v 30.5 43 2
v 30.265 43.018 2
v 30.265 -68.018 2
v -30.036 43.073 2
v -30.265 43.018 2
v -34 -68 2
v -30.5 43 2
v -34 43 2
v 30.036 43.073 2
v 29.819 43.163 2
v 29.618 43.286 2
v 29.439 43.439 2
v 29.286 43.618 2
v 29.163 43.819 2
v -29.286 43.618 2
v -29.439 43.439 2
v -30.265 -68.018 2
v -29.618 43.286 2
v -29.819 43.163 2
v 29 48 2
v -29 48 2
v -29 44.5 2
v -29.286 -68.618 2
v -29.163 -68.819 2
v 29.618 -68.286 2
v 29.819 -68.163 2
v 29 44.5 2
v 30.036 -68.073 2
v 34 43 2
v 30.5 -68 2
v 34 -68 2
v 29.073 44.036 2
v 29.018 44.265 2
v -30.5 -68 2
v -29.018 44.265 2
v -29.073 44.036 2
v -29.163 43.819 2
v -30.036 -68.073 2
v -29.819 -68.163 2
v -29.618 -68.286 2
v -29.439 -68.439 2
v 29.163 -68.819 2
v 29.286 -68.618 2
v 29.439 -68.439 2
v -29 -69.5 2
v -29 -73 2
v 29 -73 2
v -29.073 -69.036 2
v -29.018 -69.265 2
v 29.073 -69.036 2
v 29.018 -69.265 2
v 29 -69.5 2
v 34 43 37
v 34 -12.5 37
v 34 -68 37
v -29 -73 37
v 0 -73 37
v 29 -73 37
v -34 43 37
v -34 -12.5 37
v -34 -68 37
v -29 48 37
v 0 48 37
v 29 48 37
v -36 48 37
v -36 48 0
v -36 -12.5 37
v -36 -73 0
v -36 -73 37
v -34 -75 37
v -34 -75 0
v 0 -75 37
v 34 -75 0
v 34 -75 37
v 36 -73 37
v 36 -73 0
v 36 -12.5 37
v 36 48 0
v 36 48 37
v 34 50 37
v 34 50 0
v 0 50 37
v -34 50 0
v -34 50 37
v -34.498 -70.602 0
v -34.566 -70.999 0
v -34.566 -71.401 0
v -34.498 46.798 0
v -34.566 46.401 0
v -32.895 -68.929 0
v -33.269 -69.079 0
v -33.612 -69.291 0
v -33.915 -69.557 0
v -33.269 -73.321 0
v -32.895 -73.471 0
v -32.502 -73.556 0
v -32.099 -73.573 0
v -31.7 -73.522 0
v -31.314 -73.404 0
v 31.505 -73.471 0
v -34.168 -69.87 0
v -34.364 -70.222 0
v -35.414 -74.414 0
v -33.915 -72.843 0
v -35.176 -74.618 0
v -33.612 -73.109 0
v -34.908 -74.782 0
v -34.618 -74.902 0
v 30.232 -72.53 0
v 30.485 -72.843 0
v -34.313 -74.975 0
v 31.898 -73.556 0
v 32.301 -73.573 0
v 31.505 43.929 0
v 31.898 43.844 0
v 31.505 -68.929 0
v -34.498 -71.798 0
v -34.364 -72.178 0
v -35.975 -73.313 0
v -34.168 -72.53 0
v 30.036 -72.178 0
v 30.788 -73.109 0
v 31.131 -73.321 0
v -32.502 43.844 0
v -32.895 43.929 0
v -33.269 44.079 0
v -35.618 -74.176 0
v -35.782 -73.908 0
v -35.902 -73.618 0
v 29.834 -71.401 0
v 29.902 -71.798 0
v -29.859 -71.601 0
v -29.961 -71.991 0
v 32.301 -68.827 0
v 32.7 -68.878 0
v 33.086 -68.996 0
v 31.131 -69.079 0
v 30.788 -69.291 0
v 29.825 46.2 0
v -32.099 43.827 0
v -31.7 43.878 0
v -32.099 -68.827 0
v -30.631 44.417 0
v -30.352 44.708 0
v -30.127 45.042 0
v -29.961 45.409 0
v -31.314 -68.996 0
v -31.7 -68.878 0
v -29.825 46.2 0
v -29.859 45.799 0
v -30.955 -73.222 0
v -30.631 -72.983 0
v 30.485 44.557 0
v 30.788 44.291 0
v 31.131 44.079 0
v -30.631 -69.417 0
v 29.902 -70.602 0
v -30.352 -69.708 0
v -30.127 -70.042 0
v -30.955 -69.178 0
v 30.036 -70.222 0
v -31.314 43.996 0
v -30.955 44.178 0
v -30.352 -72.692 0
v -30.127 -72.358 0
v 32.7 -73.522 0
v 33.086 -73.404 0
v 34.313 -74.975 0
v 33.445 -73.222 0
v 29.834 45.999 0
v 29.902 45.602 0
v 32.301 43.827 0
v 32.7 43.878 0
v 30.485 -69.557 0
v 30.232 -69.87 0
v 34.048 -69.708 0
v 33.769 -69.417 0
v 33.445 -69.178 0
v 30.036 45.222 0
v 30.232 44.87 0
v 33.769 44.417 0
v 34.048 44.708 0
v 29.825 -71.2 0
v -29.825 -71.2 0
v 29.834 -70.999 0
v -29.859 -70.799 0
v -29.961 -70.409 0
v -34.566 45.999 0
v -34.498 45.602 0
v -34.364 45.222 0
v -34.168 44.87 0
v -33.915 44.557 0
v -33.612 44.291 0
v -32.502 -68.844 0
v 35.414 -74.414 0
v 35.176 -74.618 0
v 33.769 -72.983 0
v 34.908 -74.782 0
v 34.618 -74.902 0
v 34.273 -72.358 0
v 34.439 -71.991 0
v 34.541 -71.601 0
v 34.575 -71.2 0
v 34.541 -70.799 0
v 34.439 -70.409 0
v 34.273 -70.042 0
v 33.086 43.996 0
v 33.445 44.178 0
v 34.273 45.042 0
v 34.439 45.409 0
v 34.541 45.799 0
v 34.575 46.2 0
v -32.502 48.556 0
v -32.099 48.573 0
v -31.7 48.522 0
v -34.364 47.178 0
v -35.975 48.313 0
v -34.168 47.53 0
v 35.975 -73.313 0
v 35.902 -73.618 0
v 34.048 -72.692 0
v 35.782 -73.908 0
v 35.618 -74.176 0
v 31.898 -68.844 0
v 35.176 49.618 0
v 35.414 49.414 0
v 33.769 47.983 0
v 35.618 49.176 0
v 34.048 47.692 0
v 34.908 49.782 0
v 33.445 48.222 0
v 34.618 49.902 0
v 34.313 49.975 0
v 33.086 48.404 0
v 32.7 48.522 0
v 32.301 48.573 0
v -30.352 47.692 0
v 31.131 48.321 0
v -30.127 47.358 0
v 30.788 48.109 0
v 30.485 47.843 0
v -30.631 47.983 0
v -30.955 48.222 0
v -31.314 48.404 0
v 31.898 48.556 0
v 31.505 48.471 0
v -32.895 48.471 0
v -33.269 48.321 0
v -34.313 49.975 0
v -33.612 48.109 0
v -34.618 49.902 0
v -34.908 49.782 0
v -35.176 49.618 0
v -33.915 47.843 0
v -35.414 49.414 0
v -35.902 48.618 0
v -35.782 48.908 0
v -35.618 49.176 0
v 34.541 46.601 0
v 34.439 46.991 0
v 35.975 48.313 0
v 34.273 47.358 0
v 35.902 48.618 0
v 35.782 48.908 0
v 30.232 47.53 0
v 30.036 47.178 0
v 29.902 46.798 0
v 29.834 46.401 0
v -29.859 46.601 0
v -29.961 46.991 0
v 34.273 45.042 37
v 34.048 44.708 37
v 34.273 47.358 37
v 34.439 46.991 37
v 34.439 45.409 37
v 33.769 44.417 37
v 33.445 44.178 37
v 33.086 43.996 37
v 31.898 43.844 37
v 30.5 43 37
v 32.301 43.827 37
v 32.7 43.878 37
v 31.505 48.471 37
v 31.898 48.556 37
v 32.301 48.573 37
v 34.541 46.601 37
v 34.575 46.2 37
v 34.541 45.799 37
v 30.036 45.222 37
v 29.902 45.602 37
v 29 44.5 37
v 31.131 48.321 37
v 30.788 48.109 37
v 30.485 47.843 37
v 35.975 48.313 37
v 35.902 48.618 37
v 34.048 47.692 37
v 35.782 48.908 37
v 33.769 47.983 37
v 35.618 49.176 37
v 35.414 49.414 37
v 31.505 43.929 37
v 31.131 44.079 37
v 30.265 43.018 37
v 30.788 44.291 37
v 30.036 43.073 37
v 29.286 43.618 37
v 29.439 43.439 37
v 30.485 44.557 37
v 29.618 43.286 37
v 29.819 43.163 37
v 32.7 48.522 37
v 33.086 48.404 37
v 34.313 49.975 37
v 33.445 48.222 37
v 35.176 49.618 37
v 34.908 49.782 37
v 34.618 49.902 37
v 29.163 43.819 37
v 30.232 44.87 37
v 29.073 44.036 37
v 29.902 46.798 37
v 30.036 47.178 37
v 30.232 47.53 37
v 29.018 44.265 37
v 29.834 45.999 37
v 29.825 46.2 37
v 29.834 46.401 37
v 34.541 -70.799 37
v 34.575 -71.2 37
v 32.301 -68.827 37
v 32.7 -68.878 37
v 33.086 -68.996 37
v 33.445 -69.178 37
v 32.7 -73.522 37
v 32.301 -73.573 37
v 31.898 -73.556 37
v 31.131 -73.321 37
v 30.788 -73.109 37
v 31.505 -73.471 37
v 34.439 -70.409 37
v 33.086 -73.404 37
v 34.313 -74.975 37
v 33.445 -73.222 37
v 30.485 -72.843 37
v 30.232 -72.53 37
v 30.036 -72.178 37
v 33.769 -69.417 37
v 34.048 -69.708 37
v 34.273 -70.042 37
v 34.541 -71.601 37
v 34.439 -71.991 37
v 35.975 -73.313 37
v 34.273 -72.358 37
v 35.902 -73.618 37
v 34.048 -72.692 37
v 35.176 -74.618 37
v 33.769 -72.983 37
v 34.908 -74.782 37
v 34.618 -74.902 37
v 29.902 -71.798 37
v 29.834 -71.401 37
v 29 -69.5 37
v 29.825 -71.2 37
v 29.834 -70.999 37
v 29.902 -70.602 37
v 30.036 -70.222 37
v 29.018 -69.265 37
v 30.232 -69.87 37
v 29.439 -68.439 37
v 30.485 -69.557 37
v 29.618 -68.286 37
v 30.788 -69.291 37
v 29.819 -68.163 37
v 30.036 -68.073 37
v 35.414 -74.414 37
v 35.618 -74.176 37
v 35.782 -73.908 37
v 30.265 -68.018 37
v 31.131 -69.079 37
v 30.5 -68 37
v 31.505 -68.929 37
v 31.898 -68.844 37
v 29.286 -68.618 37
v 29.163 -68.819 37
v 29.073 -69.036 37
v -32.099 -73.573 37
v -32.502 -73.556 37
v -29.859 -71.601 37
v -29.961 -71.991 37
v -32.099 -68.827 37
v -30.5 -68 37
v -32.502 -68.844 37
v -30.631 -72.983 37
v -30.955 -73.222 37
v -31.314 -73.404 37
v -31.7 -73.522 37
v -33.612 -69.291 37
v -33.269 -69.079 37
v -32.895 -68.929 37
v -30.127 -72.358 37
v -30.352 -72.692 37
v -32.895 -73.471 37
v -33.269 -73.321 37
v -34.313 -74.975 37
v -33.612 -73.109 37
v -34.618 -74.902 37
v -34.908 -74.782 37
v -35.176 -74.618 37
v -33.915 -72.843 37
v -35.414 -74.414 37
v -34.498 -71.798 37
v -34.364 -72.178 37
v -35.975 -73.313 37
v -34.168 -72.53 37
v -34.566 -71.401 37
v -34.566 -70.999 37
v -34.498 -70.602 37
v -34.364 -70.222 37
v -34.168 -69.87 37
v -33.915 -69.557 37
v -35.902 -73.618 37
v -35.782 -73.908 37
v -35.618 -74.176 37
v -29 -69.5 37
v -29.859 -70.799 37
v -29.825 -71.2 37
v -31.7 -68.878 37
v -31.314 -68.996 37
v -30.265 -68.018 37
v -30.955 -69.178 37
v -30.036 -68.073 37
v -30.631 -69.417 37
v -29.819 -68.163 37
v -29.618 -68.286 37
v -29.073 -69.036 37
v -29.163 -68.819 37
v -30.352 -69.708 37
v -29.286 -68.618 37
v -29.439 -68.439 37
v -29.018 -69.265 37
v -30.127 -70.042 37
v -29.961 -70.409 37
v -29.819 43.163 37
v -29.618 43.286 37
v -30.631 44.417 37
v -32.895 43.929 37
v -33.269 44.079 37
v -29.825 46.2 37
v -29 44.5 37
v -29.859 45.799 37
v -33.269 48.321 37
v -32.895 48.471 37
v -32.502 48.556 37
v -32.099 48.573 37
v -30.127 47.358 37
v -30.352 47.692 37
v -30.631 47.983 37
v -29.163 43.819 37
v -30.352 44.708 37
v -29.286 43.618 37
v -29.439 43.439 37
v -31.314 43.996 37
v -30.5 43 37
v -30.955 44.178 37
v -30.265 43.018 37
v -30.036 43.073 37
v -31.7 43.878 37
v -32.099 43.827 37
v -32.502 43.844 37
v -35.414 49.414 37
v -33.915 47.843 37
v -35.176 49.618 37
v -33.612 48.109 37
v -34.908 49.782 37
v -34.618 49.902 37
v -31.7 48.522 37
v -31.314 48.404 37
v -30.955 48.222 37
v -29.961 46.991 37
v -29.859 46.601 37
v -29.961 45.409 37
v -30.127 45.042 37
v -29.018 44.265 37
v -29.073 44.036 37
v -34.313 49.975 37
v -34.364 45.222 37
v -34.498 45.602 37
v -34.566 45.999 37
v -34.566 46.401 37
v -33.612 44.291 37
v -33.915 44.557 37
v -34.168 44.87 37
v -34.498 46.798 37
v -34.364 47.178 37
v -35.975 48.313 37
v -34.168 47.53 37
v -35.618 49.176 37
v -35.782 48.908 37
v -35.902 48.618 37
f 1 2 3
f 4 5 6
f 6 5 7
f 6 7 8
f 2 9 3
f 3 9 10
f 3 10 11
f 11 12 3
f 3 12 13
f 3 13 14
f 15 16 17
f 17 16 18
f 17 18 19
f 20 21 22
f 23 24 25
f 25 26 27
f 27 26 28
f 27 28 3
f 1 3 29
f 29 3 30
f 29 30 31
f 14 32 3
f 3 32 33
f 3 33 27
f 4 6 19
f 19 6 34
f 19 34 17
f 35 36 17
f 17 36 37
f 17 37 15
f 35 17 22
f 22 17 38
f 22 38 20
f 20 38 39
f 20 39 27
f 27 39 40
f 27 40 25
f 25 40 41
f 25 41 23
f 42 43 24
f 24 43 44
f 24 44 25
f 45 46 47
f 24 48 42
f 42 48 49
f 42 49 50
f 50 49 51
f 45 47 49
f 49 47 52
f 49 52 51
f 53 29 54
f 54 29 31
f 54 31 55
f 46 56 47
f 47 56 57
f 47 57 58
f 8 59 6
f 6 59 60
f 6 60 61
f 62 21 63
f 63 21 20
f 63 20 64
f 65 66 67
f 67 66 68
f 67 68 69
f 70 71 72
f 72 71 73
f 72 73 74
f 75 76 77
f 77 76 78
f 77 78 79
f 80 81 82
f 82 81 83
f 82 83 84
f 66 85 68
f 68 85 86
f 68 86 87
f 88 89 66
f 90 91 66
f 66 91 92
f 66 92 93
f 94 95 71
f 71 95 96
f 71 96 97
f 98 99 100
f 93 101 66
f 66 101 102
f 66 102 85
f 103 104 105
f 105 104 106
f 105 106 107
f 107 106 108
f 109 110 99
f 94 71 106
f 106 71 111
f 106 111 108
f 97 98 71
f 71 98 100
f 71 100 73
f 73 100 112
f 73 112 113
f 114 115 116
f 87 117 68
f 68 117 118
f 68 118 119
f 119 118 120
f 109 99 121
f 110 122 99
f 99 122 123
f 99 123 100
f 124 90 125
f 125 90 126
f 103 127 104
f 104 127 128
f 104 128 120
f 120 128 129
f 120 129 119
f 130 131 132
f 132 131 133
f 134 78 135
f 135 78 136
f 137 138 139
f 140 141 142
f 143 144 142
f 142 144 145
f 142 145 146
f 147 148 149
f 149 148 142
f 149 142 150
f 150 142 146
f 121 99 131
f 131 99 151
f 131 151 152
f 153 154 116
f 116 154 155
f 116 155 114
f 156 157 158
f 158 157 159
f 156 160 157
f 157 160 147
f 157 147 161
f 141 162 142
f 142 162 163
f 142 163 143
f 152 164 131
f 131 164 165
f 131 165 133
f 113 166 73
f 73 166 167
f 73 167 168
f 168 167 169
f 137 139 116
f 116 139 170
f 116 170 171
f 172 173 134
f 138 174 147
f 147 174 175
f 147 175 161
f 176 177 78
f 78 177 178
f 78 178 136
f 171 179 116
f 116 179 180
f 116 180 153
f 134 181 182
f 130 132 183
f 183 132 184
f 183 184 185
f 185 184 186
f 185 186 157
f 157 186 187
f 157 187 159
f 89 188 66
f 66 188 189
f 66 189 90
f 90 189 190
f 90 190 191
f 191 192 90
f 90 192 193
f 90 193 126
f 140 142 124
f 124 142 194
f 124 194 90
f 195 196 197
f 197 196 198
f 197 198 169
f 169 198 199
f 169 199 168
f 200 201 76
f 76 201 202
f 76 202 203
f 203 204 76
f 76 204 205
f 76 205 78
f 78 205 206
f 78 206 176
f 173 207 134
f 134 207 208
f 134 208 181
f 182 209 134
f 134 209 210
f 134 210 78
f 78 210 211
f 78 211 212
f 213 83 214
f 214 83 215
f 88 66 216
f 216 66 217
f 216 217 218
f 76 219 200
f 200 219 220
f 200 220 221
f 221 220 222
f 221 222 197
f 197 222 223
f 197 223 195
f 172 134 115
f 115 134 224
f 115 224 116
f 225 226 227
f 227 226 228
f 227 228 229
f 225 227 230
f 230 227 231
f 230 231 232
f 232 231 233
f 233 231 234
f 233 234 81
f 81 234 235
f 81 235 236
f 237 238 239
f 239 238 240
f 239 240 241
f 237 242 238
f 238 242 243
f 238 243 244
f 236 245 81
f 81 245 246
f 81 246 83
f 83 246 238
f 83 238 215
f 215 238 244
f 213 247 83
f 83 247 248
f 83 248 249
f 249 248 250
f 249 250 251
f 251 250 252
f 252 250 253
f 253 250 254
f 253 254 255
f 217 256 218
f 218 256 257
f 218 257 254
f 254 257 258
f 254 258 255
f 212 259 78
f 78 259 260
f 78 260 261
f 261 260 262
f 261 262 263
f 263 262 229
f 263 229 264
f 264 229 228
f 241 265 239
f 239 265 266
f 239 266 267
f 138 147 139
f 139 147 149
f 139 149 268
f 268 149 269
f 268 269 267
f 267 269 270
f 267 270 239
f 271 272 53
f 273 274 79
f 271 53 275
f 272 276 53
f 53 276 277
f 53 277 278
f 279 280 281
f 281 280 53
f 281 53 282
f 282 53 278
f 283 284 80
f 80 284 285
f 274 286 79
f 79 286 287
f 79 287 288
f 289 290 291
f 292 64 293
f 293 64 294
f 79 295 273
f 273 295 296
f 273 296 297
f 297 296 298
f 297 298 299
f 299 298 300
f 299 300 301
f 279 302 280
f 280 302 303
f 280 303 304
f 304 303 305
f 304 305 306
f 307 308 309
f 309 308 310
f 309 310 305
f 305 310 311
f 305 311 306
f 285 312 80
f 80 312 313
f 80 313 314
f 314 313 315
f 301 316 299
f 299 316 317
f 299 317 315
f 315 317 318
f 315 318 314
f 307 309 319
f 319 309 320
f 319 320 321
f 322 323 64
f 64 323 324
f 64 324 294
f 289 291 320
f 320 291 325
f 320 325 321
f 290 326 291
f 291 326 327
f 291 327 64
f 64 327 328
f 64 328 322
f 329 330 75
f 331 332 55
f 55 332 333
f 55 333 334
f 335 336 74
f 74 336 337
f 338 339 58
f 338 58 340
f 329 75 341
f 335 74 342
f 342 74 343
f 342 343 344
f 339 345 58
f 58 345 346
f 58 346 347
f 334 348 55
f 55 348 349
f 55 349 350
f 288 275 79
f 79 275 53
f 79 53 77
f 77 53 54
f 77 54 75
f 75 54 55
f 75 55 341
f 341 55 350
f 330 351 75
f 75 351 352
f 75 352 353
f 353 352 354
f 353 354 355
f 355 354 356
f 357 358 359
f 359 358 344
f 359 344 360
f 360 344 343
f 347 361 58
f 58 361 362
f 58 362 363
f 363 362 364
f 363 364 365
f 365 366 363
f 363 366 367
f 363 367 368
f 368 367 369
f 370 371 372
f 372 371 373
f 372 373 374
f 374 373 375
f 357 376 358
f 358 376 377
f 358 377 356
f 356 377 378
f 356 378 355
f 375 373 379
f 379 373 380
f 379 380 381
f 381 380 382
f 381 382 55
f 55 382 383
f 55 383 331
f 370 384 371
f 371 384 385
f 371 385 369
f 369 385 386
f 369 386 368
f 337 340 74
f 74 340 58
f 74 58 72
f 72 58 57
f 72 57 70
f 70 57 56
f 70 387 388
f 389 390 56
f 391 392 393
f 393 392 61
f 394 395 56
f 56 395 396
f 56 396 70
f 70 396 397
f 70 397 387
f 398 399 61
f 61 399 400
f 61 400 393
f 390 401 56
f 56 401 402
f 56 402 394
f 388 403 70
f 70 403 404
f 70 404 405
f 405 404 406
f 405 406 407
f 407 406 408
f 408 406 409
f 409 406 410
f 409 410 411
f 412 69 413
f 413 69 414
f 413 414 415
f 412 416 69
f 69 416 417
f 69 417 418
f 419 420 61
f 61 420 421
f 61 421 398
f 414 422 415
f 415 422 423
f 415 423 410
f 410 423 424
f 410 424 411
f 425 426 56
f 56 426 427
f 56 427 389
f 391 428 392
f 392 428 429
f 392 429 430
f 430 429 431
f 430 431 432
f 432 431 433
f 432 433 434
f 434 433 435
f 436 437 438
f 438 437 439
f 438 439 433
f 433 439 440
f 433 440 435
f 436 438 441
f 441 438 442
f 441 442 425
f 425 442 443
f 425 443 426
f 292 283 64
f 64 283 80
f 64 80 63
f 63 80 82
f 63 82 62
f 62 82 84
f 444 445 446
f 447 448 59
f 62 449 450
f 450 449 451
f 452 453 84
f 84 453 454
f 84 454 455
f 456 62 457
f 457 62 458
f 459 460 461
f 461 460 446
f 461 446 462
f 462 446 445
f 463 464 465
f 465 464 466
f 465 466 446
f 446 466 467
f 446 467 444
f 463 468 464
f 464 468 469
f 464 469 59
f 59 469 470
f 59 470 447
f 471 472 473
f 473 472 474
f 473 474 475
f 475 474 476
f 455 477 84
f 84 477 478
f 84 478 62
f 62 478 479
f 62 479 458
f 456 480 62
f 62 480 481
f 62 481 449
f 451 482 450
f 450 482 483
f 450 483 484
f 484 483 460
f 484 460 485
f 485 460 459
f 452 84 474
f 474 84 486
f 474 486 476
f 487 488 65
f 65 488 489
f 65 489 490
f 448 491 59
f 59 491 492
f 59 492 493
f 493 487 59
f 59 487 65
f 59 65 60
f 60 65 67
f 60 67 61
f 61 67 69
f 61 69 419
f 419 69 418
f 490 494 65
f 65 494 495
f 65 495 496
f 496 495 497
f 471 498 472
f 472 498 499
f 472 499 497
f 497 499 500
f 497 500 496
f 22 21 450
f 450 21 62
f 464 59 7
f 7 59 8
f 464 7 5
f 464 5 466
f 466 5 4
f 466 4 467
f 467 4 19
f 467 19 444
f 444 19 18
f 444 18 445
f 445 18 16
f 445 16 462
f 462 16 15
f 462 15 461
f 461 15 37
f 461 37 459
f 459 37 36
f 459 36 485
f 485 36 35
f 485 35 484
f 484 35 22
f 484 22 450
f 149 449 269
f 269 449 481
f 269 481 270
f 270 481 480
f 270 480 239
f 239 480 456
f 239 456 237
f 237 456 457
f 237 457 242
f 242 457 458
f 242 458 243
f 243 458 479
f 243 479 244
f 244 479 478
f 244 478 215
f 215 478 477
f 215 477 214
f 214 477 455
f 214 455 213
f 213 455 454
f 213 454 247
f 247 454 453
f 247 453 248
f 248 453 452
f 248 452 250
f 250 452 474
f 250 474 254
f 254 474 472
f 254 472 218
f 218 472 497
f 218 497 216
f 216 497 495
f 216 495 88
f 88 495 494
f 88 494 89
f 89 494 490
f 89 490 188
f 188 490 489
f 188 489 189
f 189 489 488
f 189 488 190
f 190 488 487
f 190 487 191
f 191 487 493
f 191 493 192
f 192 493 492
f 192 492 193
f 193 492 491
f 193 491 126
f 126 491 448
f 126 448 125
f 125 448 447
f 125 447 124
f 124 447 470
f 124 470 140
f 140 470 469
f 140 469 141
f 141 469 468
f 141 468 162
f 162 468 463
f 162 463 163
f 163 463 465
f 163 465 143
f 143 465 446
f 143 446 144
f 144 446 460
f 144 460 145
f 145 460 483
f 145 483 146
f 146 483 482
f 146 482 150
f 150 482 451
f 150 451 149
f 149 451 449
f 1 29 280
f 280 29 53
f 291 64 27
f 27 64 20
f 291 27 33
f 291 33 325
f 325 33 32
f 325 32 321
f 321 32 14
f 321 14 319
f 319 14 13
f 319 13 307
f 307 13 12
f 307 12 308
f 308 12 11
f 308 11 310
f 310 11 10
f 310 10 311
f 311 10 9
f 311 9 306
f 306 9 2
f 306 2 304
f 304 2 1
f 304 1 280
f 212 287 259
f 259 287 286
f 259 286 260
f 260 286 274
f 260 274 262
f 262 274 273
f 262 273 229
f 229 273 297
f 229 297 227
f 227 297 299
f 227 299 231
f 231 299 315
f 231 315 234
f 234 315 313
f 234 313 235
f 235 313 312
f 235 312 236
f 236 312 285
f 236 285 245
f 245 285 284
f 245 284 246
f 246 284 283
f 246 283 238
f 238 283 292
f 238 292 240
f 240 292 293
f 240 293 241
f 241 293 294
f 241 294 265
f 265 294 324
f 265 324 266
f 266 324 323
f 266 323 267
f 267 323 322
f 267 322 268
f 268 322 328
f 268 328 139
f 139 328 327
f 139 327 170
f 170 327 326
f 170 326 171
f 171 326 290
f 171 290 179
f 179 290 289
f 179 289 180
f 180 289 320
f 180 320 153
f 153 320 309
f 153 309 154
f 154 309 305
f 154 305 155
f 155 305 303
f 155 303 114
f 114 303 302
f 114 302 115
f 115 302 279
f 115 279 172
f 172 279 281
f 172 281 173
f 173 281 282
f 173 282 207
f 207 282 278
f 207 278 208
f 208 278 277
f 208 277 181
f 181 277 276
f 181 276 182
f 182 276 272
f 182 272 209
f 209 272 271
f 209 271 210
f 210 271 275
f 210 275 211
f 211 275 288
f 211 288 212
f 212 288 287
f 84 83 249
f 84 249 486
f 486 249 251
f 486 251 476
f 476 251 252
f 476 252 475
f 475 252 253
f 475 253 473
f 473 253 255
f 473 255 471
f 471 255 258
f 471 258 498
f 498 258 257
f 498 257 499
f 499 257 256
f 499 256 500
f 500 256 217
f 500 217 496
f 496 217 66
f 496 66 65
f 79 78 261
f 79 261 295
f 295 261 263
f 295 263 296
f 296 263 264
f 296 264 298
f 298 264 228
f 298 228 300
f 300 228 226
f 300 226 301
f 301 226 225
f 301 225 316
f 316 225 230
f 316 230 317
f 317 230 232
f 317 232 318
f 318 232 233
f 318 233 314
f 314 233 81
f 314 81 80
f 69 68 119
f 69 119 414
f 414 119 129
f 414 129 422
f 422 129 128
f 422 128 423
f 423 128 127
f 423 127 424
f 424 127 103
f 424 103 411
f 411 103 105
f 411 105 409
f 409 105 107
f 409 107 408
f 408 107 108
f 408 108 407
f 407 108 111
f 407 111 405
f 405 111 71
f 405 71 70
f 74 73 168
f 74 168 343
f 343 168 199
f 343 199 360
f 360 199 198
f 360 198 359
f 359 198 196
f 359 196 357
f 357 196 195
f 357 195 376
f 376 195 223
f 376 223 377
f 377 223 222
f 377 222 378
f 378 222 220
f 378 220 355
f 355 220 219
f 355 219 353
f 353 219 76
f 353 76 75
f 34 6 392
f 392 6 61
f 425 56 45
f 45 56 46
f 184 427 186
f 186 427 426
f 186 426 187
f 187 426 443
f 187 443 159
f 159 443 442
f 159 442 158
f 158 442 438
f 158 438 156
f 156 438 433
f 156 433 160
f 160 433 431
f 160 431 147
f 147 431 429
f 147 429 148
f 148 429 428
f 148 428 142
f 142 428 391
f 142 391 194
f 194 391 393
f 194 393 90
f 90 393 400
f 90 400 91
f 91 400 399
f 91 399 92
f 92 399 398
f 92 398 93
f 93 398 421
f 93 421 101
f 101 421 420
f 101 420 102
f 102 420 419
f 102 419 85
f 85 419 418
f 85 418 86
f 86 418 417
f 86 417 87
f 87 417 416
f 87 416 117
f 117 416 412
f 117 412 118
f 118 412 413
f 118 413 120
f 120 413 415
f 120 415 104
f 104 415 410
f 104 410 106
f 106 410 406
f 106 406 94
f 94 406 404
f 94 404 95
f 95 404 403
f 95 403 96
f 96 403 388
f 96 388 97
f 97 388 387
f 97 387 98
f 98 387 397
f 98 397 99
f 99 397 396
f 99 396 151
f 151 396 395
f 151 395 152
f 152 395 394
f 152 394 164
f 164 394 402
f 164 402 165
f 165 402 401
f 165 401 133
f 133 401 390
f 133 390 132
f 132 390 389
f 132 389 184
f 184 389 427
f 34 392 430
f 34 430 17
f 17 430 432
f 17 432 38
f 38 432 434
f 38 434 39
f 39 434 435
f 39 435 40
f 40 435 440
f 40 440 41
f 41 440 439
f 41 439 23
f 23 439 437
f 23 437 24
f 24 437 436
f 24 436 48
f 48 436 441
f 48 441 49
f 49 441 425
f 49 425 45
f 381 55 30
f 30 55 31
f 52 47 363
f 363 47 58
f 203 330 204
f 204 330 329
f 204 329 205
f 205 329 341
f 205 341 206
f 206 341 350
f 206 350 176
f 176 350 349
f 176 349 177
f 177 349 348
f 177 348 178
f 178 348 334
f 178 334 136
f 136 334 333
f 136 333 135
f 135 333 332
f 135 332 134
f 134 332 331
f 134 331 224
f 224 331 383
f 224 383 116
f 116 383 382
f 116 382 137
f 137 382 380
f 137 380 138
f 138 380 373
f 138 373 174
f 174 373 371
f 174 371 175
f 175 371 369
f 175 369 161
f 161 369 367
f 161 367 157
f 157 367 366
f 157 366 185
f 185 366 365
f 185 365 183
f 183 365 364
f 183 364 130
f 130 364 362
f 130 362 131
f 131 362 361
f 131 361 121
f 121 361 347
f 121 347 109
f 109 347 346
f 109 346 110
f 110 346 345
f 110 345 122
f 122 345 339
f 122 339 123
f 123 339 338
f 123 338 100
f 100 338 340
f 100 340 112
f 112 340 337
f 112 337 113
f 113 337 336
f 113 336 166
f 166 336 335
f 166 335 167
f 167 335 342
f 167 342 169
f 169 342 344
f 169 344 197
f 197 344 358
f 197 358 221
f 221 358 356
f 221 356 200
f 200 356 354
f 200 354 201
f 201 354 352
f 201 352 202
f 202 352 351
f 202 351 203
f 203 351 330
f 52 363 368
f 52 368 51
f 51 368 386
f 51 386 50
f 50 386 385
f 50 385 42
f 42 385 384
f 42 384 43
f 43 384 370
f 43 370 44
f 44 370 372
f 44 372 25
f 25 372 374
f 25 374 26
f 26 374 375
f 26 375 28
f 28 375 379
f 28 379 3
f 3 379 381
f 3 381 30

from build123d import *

# Parameters (mm, degrees)
SKETCH1_W            = 72
SKETCH1_H            = 125
BOSS_EXTRUDE1_DEPTH  = 2
SKETCH5_W            = 72
SKETCH5_H            = 2
BOSS_EXTRUDE3_DEPTH  = 35
SKETCH6_W            = 2
SKETCH6_H            = 125
BOSS_EXTRUDE4_DEPTH  = 35
SKETCH7_W            = 5
SKETCH7_H            = 5
BOSS_EXTRUDE5_DEPTH  = 35
FILLET2_R            = 1.5
SKETCH8_R            = 2.375
CUT_EXTRUDE2_DEPTH   = 92.049437121
FILLET2_OF_MIRROR4_R = 1.5
FILLET3_R            = 2
SKETCH12_W           = 68
SKETCH12_H           = 2
BOSS_EXTRUDE6_DEPTH  = 35
SKETCH13_W           = 5
SKETCH13_H           = 5
BOSS_EXTRUDE9_DEPTH  = 35
SKETCH14_R           = 2.375
CUT_EXTRUDE6_DEPTH   = 92.049437121
FILLET4_R            = 1.5
FILLET4_OF_MIRROR8_R = 1.5


with BuildPart() as part:
    # Sketch1 → Boss-Extrude1 (new body)
    with BuildSketch(Plane.XY):
        with Locations((0, -12.5)):
            Rectangle(SKETCH1_W, SKETCH1_H)
    extrude(amount=BOSS_EXTRUDE1_DEPTH)

    # Sketch5 → Boss-Extrude3 (add)
    with BuildSketch(Plane.XY.offset(2)):
        with Locations((0, 49)):
            Rectangle(SKETCH5_W, SKETCH5_H)
    extrude(amount=BOSS_EXTRUDE3_DEPTH)

    # Sketch6 → Boss-Extrude4 (add)
    with BuildSketch(Plane.XY.offset(2)):
        with Locations((-35, -12.5)):
            Rectangle(SKETCH6_W, SKETCH6_H)
    boss_extrude4 = extrude(amount=BOSS_EXTRUDE4_DEPTH)

    # Mirror2: Boss-Extrude4 across plane
    add(boss_extrude4.mirror(Plane(origin=(0, 0, 0), x_dir=(0, 0, 1), z_dir=(1, 0, 0))))

    # Sketch7 → Boss-Extrude5 (add)
    with BuildSketch(Plane.XY.offset(2)):
        with Locations((-31.5, 45.5)):
            Rectangle(SKETCH7_W, SKETCH7_H)
    boss_extrude5 = extrude(amount=BOSS_EXTRUDE5_DEPTH)

    # Fillet2
    fillet2_edges = [part.edges().sort_by_distance(p)[0] for p in [
        (-29, 43, 19.5),
    ]]
    fillet(fillet2_edges, radius=FILLET2_R)

    # Sketch8 → Cut-Extrude2 (cut, through all)
    with BuildSketch(Plane.XY.offset(37)):
        with Locations((-32.2, 46.2)):
            Circle(SKETCH8_R)
    cut_extrude2 = extrude(amount=-CUT_EXTRUDE2_DEPTH, mode=Mode.SUBTRACT)

    # Mirror4: Boss-Extrude5, Cut-Extrude2 across plane
    add(boss_extrude5.mirror(Plane(origin=(0, 0, 0), x_dir=(0, 0, 1), z_dir=(1, 0, 0))))
    add(cut_extrude2.mirror(Plane(origin=(0, 0, 0), x_dir=(0, 0, 1), z_dir=(1, 0, 0))), mode=Mode.SUBTRACT)

    # Fillet2 of Mirror4
    fillet2_of_mirror4_edges = [part.edges().sort_by_distance(p)[0] for p in [
        (29, 43, 19.5),
    ]]
    fillet(fillet2_of_mirror4_edges, radius=FILLET2_OF_MIRROR4_R)

    # Fillet3
    fillet3_edges = [part.edges().sort_by_distance(p)[0] for p in [
        (-36, 50, 18.5),
        (36, 50, 18.5),
        (-36, -75, 18.5),
        (36, -75, 18.5),
    ]]
    fillet(fillet3_edges, radius=FILLET3_R - 0.0001)  # a hair under: the kernel refuses the full size

    # Sketch12 → Boss-Extrude6 (add)
    with BuildSketch(Plane.XY.offset(2)):
        with Locations((0, -74)):
            Rectangle(SKETCH12_W, SKETCH12_H)
    extrude(amount=BOSS_EXTRUDE6_DEPTH)

    # Sketch13 → Boss-Extrude9 (add)
    with BuildSketch(Plane.XY.offset(37)):
        with Locations((-31.5, -70.5)):
            Rectangle(SKETCH13_W, SKETCH13_H)
    boss_extrude9 = extrude(amount=-BOSS_EXTRUDE9_DEPTH)

    # Sketch14 → Cut-Extrude6 (cut, through all)
    with BuildSketch(Plane.XY.offset(37)):
        with Locations((-32.2, -71.2)):
            Circle(SKETCH14_R)
    cut_extrude6 = extrude(amount=-CUT_EXTRUDE6_DEPTH, mode=Mode.SUBTRACT)

    # Fillet4
    fillet4_edges = [part.edges().sort_by_distance(p)[0] for p in [
        (-29, -68, 19.5),
    ]]
    fillet(fillet4_edges, radius=FILLET4_R)

    # Mirror8: Boss-Extrude9, Cut-Extrude6 across plane
    add(boss_extrude9.mirror(Plane(origin=(0, 0, 0), x_dir=(0, 0, 1), z_dir=(1, 0, 0))))
    add(cut_extrude6.mirror(Plane(origin=(0, 0, 0), x_dir=(0, 0, 1), z_dir=(1, 0, 0))), mode=Mode.SUBTRACT)

    # Fillet4 of Mirror8
    fillet4_of_mirror8_edges = [part.edges().sort_by_distance(p)[0] for p in [
        (29, -68, 19.5),
    ]]
    fillet(fillet4_of_mirror8_edges, radius=FILLET4_OF_MIRROR8_R)


solid = part.part
